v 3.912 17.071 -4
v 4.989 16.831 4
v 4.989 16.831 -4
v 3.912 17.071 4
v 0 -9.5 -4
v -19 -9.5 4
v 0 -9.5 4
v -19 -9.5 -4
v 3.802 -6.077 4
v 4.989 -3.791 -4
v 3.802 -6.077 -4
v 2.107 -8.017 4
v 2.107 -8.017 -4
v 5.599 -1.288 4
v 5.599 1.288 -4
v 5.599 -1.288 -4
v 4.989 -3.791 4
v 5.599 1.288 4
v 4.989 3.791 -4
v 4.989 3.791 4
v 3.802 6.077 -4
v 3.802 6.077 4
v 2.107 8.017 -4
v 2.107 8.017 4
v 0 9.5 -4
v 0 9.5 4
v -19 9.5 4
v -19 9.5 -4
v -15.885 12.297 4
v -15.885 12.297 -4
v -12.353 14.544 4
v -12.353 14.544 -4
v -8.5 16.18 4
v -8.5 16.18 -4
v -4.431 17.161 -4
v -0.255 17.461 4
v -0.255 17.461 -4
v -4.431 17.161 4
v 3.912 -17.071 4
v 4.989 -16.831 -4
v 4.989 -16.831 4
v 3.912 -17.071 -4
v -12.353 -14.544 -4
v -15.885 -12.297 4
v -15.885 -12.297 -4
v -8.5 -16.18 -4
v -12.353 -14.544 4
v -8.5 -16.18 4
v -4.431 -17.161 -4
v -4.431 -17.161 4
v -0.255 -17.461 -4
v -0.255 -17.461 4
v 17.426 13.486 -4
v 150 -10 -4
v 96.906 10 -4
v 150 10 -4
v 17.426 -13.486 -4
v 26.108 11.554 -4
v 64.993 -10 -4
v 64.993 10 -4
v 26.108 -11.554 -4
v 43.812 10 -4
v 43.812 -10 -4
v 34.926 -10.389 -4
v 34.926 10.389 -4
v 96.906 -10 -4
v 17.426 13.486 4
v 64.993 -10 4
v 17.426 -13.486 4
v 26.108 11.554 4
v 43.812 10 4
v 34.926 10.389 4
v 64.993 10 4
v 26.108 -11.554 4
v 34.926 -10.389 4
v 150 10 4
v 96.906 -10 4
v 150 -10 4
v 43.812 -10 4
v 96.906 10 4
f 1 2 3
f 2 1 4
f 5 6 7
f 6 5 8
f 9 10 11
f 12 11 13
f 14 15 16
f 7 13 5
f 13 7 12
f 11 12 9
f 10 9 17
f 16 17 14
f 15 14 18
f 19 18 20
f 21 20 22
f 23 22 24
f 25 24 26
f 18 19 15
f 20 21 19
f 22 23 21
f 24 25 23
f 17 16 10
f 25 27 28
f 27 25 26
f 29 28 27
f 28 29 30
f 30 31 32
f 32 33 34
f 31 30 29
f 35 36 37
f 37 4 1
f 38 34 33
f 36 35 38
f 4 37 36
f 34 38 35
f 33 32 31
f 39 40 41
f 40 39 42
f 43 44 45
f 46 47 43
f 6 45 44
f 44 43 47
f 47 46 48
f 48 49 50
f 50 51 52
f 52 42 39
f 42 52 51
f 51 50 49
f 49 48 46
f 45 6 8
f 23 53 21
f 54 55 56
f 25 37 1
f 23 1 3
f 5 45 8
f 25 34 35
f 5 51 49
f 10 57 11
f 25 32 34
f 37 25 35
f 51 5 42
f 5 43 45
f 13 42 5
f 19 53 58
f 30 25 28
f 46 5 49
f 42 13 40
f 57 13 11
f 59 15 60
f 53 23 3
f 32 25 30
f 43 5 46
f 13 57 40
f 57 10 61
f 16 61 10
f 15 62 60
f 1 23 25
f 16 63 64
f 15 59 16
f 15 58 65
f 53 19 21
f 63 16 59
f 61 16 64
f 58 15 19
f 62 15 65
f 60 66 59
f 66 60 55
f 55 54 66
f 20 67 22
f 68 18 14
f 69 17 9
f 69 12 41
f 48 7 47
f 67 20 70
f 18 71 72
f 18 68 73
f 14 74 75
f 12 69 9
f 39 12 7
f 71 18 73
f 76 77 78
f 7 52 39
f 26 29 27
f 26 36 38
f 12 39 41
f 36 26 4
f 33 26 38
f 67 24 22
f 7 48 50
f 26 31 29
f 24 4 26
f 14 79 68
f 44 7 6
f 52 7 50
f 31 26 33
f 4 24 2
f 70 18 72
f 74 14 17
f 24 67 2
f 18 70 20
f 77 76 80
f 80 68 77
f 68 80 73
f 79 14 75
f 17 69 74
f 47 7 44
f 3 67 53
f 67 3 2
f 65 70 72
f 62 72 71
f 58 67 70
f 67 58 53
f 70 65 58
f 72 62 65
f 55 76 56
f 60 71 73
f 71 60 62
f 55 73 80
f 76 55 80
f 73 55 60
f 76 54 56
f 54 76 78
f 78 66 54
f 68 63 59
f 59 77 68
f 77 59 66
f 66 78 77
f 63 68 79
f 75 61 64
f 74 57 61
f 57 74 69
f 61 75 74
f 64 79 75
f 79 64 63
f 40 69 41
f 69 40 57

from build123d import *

# Parameters (mm, degrees)
BOSS_EXTRUDE1_DEPTH = 4
BOSS_EXTRUDE2_DEPTH = 4


with BuildPart() as part:
    # Sketch1 → Boss-Extrude1 (new, symmetric)
    with BuildSketch(Plane(origin=(0, 0, 0), x_dir=(1, 0, 0), z_dir=(0, 0, -1))):
        with BuildLine():
            Line((-19, 9.5), (0, 9.5))
            ThreePointArc((0, 9.5), (5.676596321, 0), (0, -9.5))
            Line((0, -9.5), (-19, -9.5))
            ThreePointArc((-19, -9.5), (-8.500253603, -16.1800345), (3.912406176, -17.070771576))
            ThreePointArc((3.912406176, -17.070771576), (9.768875106, -14.366169937), (13.541125507, -9.133271576))
            ThreePointArc((13.541125507, -9.133271576), (15.24, 0), (13.541125507, 9.133271576))
            ThreePointArc((13.541125507, 9.133271576), (9.768875106, 14.366169937), (3.912406176, 17.070771576))
            ThreePointArc((3.912406176, 17.070771576), (-8.500253603, 16.1800345), (-19, 9.5))
        make_face()
    extrude(amount=BOSS_EXTRUDE1_DEPTH, both=True)

    # Sketch2 → Boss-Extrude2 (add, symmetric)
    with BuildSketch(Plane(origin=(0, 0, 0), x_dir=(1, 0, 0), z_dir=(0, 0, -1))):
        with BuildLine():
            Line((128.204707639, 10), (43.812088921, 10))
            ThreePointArc((43.812088921, 10), (30.504452796, 10.875291905), (17.426109311, 13.486086206))
            Line((17.426109311, 13.486086206), (4.988810205, 16.830875012))
            ThreePointArc((4.988810205, 16.830875012), (10.186731733, 14.006186237), (13.541125507, 9.133271576))
            ThreePointArc((13.541125507, 9.133271576), (15.24, 0), (13.541125507, -9.133271576))
            ThreePointArc((13.541125507, -9.133271576), (10.186731733, -14.006186237), (4.988810205, -16.830875012))
            Line((4.988810205, -16.830875012), (17.426109311, -13.486086206))
            ThreePointArc((17.426109311, -13.486086206), (30.504452796, -10.875291905), (43.812088921, -10))
            Line((43.812088921, -10), (128.204707639, -10))
            Line((128.204707639, -10), (150, -10))
            Line((150, -10), (150, 10))
            Line((150, 10), (128.204707639, 10))
        make_face()
    extrude(amount=BOSS_EXTRUDE2_DEPTH, both=True)


solid = part.part
